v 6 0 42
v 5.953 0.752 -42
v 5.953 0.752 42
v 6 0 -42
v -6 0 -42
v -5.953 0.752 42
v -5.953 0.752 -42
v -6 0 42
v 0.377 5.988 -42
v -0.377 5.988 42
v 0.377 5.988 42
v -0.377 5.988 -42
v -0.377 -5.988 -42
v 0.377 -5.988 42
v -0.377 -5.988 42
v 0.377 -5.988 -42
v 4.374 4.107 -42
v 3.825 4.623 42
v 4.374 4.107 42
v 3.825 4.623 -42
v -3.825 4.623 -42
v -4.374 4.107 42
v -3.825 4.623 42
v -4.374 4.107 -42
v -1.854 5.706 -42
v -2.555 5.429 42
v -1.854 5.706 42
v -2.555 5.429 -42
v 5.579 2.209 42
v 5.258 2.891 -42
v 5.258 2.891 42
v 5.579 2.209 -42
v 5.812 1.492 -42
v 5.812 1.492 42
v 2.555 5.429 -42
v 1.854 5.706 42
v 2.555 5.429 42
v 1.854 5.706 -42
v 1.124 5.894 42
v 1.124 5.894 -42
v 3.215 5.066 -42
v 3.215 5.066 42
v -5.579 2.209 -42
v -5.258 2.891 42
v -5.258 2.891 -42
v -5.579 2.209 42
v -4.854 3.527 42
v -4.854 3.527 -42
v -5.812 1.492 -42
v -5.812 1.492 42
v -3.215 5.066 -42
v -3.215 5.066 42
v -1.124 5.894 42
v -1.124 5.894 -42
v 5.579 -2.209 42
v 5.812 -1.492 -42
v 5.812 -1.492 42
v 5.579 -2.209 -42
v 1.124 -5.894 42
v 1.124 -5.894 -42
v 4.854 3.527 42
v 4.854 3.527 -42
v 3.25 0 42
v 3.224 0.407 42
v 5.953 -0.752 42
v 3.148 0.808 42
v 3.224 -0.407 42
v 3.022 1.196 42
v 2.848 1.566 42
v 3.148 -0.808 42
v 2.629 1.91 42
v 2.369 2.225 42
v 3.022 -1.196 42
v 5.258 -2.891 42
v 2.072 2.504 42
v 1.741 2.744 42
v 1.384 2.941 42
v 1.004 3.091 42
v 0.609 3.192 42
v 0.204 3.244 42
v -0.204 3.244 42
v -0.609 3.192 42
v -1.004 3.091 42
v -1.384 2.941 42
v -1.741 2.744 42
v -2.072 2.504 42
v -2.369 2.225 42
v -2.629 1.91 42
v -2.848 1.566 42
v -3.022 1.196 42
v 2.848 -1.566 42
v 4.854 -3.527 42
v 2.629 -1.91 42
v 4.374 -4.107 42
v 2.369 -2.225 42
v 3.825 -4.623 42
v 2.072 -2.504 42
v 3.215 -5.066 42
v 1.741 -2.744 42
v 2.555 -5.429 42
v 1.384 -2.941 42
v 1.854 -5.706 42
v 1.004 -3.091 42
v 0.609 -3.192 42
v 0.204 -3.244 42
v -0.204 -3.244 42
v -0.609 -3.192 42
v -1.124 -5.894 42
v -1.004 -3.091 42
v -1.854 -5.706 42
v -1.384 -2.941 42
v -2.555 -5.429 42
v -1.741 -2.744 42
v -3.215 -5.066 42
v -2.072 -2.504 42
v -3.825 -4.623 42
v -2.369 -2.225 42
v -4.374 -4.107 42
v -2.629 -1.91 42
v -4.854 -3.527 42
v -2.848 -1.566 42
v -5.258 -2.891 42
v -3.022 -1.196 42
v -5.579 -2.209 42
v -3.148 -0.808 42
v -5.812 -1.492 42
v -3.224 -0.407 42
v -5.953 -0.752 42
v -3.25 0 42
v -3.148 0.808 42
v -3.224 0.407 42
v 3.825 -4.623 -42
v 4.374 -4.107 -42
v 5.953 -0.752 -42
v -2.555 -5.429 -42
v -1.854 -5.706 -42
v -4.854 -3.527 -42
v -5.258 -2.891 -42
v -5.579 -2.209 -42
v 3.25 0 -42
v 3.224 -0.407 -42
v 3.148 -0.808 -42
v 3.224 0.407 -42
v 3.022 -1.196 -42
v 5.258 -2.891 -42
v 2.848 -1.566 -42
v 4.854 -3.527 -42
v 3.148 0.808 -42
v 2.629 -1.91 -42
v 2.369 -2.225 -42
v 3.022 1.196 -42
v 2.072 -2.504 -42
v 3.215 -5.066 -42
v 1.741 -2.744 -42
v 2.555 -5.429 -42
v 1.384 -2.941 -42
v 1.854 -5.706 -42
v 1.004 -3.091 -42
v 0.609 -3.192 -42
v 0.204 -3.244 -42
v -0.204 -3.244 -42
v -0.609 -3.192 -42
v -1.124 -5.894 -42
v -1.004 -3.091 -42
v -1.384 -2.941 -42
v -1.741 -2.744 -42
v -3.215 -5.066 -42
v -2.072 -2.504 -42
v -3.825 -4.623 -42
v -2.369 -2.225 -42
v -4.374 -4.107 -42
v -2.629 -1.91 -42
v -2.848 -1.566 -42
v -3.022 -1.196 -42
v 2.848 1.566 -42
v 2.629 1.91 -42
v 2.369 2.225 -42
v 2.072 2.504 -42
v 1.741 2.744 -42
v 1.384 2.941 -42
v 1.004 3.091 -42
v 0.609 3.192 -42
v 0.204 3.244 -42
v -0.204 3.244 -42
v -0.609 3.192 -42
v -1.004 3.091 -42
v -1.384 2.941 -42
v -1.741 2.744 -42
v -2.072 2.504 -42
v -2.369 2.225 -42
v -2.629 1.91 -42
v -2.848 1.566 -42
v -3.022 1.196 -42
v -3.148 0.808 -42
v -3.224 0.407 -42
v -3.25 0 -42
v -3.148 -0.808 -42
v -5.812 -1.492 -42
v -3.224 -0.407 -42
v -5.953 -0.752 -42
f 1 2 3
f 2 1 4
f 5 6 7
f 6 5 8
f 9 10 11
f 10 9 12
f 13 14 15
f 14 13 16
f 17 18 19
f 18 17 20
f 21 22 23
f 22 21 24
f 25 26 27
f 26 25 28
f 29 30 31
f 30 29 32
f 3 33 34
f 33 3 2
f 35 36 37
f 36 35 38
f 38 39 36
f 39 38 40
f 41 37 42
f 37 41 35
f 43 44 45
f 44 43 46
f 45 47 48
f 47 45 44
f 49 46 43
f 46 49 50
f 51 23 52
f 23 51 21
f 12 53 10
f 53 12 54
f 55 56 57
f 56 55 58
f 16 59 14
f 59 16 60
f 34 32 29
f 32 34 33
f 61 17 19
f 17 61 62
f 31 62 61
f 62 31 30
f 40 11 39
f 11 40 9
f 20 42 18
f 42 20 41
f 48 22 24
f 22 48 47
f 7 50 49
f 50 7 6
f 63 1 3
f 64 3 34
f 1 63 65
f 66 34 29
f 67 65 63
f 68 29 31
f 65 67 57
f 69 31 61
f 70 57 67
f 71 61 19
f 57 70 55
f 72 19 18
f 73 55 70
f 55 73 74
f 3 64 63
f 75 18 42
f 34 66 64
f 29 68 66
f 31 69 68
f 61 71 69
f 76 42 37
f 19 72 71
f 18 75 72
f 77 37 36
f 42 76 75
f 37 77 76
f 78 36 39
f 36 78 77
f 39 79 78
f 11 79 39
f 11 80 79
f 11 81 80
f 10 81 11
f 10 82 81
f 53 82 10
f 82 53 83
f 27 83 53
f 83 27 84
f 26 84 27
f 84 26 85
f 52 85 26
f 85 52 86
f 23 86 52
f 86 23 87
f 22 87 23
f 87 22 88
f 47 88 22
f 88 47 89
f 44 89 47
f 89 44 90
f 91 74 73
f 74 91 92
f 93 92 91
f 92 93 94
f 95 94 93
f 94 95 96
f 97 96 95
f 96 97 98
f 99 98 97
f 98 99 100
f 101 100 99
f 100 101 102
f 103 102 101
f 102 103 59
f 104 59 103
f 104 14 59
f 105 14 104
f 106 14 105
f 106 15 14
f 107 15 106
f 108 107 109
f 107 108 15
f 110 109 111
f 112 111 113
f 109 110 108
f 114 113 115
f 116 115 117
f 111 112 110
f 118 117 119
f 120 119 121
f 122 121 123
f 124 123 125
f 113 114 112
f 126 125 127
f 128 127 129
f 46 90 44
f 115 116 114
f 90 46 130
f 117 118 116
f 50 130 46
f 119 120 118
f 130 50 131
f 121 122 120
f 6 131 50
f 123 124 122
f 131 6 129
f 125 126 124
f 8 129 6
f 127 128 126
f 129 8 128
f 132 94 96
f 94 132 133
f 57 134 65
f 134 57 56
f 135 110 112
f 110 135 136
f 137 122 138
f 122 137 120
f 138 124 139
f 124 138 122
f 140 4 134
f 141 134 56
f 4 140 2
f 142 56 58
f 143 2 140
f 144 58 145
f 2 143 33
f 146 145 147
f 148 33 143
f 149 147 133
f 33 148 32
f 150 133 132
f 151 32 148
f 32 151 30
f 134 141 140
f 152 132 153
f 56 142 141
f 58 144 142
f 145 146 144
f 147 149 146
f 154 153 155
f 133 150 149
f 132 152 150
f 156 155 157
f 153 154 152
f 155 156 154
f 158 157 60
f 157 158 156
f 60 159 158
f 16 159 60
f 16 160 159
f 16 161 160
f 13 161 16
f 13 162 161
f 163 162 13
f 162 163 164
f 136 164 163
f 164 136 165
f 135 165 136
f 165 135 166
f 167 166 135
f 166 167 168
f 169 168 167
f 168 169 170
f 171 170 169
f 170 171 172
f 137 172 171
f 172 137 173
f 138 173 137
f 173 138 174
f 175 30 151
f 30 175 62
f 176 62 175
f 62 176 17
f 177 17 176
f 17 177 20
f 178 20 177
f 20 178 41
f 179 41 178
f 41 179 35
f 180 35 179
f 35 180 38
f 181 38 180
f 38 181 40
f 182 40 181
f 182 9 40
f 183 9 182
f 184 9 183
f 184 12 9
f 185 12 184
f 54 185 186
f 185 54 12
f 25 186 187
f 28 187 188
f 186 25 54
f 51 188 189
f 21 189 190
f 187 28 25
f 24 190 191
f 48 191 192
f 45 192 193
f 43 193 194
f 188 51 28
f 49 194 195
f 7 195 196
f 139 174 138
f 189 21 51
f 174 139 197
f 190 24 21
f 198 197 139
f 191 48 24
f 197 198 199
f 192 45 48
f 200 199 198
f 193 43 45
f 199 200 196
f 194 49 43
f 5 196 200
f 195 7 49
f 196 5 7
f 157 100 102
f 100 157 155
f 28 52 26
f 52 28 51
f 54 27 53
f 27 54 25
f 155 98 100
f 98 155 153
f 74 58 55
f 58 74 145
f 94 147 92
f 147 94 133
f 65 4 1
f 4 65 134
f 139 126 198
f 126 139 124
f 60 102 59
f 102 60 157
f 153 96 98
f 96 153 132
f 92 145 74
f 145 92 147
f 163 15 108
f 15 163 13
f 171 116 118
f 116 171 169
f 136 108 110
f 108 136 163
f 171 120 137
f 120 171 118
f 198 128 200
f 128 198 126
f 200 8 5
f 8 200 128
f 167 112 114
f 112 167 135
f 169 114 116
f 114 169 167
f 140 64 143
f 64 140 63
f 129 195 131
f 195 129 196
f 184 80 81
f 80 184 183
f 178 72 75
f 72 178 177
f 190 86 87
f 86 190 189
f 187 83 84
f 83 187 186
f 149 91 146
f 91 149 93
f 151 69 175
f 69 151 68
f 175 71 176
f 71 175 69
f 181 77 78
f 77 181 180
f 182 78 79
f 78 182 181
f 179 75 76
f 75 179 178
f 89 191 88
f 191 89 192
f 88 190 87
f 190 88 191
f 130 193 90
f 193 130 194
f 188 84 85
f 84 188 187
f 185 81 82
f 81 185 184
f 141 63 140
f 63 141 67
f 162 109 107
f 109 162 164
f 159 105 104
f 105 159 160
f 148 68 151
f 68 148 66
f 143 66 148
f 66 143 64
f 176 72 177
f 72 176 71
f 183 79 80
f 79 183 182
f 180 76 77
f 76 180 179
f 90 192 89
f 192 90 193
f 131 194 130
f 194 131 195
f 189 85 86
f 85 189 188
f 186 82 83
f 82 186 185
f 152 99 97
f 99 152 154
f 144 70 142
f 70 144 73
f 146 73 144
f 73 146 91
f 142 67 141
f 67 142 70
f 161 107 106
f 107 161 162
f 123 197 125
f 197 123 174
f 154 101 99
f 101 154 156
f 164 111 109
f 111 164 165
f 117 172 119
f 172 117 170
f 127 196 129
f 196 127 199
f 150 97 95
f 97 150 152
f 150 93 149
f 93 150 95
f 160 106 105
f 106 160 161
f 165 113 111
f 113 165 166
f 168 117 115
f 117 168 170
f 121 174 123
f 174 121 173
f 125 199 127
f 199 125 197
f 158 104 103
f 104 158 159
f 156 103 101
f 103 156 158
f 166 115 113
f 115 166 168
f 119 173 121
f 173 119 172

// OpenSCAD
$fn = 50;


difference() {
	union() {
		translate(v = [0, 0, -42.0000000000]) {
			cylinder(h = 84, r = 6.0000000000);
		}
	}
	union() {
		translate(v = [0, 0, -100.0000000000]) {
			cylinder(h = 200, r = 3.2500000000);
		}
	}
}
